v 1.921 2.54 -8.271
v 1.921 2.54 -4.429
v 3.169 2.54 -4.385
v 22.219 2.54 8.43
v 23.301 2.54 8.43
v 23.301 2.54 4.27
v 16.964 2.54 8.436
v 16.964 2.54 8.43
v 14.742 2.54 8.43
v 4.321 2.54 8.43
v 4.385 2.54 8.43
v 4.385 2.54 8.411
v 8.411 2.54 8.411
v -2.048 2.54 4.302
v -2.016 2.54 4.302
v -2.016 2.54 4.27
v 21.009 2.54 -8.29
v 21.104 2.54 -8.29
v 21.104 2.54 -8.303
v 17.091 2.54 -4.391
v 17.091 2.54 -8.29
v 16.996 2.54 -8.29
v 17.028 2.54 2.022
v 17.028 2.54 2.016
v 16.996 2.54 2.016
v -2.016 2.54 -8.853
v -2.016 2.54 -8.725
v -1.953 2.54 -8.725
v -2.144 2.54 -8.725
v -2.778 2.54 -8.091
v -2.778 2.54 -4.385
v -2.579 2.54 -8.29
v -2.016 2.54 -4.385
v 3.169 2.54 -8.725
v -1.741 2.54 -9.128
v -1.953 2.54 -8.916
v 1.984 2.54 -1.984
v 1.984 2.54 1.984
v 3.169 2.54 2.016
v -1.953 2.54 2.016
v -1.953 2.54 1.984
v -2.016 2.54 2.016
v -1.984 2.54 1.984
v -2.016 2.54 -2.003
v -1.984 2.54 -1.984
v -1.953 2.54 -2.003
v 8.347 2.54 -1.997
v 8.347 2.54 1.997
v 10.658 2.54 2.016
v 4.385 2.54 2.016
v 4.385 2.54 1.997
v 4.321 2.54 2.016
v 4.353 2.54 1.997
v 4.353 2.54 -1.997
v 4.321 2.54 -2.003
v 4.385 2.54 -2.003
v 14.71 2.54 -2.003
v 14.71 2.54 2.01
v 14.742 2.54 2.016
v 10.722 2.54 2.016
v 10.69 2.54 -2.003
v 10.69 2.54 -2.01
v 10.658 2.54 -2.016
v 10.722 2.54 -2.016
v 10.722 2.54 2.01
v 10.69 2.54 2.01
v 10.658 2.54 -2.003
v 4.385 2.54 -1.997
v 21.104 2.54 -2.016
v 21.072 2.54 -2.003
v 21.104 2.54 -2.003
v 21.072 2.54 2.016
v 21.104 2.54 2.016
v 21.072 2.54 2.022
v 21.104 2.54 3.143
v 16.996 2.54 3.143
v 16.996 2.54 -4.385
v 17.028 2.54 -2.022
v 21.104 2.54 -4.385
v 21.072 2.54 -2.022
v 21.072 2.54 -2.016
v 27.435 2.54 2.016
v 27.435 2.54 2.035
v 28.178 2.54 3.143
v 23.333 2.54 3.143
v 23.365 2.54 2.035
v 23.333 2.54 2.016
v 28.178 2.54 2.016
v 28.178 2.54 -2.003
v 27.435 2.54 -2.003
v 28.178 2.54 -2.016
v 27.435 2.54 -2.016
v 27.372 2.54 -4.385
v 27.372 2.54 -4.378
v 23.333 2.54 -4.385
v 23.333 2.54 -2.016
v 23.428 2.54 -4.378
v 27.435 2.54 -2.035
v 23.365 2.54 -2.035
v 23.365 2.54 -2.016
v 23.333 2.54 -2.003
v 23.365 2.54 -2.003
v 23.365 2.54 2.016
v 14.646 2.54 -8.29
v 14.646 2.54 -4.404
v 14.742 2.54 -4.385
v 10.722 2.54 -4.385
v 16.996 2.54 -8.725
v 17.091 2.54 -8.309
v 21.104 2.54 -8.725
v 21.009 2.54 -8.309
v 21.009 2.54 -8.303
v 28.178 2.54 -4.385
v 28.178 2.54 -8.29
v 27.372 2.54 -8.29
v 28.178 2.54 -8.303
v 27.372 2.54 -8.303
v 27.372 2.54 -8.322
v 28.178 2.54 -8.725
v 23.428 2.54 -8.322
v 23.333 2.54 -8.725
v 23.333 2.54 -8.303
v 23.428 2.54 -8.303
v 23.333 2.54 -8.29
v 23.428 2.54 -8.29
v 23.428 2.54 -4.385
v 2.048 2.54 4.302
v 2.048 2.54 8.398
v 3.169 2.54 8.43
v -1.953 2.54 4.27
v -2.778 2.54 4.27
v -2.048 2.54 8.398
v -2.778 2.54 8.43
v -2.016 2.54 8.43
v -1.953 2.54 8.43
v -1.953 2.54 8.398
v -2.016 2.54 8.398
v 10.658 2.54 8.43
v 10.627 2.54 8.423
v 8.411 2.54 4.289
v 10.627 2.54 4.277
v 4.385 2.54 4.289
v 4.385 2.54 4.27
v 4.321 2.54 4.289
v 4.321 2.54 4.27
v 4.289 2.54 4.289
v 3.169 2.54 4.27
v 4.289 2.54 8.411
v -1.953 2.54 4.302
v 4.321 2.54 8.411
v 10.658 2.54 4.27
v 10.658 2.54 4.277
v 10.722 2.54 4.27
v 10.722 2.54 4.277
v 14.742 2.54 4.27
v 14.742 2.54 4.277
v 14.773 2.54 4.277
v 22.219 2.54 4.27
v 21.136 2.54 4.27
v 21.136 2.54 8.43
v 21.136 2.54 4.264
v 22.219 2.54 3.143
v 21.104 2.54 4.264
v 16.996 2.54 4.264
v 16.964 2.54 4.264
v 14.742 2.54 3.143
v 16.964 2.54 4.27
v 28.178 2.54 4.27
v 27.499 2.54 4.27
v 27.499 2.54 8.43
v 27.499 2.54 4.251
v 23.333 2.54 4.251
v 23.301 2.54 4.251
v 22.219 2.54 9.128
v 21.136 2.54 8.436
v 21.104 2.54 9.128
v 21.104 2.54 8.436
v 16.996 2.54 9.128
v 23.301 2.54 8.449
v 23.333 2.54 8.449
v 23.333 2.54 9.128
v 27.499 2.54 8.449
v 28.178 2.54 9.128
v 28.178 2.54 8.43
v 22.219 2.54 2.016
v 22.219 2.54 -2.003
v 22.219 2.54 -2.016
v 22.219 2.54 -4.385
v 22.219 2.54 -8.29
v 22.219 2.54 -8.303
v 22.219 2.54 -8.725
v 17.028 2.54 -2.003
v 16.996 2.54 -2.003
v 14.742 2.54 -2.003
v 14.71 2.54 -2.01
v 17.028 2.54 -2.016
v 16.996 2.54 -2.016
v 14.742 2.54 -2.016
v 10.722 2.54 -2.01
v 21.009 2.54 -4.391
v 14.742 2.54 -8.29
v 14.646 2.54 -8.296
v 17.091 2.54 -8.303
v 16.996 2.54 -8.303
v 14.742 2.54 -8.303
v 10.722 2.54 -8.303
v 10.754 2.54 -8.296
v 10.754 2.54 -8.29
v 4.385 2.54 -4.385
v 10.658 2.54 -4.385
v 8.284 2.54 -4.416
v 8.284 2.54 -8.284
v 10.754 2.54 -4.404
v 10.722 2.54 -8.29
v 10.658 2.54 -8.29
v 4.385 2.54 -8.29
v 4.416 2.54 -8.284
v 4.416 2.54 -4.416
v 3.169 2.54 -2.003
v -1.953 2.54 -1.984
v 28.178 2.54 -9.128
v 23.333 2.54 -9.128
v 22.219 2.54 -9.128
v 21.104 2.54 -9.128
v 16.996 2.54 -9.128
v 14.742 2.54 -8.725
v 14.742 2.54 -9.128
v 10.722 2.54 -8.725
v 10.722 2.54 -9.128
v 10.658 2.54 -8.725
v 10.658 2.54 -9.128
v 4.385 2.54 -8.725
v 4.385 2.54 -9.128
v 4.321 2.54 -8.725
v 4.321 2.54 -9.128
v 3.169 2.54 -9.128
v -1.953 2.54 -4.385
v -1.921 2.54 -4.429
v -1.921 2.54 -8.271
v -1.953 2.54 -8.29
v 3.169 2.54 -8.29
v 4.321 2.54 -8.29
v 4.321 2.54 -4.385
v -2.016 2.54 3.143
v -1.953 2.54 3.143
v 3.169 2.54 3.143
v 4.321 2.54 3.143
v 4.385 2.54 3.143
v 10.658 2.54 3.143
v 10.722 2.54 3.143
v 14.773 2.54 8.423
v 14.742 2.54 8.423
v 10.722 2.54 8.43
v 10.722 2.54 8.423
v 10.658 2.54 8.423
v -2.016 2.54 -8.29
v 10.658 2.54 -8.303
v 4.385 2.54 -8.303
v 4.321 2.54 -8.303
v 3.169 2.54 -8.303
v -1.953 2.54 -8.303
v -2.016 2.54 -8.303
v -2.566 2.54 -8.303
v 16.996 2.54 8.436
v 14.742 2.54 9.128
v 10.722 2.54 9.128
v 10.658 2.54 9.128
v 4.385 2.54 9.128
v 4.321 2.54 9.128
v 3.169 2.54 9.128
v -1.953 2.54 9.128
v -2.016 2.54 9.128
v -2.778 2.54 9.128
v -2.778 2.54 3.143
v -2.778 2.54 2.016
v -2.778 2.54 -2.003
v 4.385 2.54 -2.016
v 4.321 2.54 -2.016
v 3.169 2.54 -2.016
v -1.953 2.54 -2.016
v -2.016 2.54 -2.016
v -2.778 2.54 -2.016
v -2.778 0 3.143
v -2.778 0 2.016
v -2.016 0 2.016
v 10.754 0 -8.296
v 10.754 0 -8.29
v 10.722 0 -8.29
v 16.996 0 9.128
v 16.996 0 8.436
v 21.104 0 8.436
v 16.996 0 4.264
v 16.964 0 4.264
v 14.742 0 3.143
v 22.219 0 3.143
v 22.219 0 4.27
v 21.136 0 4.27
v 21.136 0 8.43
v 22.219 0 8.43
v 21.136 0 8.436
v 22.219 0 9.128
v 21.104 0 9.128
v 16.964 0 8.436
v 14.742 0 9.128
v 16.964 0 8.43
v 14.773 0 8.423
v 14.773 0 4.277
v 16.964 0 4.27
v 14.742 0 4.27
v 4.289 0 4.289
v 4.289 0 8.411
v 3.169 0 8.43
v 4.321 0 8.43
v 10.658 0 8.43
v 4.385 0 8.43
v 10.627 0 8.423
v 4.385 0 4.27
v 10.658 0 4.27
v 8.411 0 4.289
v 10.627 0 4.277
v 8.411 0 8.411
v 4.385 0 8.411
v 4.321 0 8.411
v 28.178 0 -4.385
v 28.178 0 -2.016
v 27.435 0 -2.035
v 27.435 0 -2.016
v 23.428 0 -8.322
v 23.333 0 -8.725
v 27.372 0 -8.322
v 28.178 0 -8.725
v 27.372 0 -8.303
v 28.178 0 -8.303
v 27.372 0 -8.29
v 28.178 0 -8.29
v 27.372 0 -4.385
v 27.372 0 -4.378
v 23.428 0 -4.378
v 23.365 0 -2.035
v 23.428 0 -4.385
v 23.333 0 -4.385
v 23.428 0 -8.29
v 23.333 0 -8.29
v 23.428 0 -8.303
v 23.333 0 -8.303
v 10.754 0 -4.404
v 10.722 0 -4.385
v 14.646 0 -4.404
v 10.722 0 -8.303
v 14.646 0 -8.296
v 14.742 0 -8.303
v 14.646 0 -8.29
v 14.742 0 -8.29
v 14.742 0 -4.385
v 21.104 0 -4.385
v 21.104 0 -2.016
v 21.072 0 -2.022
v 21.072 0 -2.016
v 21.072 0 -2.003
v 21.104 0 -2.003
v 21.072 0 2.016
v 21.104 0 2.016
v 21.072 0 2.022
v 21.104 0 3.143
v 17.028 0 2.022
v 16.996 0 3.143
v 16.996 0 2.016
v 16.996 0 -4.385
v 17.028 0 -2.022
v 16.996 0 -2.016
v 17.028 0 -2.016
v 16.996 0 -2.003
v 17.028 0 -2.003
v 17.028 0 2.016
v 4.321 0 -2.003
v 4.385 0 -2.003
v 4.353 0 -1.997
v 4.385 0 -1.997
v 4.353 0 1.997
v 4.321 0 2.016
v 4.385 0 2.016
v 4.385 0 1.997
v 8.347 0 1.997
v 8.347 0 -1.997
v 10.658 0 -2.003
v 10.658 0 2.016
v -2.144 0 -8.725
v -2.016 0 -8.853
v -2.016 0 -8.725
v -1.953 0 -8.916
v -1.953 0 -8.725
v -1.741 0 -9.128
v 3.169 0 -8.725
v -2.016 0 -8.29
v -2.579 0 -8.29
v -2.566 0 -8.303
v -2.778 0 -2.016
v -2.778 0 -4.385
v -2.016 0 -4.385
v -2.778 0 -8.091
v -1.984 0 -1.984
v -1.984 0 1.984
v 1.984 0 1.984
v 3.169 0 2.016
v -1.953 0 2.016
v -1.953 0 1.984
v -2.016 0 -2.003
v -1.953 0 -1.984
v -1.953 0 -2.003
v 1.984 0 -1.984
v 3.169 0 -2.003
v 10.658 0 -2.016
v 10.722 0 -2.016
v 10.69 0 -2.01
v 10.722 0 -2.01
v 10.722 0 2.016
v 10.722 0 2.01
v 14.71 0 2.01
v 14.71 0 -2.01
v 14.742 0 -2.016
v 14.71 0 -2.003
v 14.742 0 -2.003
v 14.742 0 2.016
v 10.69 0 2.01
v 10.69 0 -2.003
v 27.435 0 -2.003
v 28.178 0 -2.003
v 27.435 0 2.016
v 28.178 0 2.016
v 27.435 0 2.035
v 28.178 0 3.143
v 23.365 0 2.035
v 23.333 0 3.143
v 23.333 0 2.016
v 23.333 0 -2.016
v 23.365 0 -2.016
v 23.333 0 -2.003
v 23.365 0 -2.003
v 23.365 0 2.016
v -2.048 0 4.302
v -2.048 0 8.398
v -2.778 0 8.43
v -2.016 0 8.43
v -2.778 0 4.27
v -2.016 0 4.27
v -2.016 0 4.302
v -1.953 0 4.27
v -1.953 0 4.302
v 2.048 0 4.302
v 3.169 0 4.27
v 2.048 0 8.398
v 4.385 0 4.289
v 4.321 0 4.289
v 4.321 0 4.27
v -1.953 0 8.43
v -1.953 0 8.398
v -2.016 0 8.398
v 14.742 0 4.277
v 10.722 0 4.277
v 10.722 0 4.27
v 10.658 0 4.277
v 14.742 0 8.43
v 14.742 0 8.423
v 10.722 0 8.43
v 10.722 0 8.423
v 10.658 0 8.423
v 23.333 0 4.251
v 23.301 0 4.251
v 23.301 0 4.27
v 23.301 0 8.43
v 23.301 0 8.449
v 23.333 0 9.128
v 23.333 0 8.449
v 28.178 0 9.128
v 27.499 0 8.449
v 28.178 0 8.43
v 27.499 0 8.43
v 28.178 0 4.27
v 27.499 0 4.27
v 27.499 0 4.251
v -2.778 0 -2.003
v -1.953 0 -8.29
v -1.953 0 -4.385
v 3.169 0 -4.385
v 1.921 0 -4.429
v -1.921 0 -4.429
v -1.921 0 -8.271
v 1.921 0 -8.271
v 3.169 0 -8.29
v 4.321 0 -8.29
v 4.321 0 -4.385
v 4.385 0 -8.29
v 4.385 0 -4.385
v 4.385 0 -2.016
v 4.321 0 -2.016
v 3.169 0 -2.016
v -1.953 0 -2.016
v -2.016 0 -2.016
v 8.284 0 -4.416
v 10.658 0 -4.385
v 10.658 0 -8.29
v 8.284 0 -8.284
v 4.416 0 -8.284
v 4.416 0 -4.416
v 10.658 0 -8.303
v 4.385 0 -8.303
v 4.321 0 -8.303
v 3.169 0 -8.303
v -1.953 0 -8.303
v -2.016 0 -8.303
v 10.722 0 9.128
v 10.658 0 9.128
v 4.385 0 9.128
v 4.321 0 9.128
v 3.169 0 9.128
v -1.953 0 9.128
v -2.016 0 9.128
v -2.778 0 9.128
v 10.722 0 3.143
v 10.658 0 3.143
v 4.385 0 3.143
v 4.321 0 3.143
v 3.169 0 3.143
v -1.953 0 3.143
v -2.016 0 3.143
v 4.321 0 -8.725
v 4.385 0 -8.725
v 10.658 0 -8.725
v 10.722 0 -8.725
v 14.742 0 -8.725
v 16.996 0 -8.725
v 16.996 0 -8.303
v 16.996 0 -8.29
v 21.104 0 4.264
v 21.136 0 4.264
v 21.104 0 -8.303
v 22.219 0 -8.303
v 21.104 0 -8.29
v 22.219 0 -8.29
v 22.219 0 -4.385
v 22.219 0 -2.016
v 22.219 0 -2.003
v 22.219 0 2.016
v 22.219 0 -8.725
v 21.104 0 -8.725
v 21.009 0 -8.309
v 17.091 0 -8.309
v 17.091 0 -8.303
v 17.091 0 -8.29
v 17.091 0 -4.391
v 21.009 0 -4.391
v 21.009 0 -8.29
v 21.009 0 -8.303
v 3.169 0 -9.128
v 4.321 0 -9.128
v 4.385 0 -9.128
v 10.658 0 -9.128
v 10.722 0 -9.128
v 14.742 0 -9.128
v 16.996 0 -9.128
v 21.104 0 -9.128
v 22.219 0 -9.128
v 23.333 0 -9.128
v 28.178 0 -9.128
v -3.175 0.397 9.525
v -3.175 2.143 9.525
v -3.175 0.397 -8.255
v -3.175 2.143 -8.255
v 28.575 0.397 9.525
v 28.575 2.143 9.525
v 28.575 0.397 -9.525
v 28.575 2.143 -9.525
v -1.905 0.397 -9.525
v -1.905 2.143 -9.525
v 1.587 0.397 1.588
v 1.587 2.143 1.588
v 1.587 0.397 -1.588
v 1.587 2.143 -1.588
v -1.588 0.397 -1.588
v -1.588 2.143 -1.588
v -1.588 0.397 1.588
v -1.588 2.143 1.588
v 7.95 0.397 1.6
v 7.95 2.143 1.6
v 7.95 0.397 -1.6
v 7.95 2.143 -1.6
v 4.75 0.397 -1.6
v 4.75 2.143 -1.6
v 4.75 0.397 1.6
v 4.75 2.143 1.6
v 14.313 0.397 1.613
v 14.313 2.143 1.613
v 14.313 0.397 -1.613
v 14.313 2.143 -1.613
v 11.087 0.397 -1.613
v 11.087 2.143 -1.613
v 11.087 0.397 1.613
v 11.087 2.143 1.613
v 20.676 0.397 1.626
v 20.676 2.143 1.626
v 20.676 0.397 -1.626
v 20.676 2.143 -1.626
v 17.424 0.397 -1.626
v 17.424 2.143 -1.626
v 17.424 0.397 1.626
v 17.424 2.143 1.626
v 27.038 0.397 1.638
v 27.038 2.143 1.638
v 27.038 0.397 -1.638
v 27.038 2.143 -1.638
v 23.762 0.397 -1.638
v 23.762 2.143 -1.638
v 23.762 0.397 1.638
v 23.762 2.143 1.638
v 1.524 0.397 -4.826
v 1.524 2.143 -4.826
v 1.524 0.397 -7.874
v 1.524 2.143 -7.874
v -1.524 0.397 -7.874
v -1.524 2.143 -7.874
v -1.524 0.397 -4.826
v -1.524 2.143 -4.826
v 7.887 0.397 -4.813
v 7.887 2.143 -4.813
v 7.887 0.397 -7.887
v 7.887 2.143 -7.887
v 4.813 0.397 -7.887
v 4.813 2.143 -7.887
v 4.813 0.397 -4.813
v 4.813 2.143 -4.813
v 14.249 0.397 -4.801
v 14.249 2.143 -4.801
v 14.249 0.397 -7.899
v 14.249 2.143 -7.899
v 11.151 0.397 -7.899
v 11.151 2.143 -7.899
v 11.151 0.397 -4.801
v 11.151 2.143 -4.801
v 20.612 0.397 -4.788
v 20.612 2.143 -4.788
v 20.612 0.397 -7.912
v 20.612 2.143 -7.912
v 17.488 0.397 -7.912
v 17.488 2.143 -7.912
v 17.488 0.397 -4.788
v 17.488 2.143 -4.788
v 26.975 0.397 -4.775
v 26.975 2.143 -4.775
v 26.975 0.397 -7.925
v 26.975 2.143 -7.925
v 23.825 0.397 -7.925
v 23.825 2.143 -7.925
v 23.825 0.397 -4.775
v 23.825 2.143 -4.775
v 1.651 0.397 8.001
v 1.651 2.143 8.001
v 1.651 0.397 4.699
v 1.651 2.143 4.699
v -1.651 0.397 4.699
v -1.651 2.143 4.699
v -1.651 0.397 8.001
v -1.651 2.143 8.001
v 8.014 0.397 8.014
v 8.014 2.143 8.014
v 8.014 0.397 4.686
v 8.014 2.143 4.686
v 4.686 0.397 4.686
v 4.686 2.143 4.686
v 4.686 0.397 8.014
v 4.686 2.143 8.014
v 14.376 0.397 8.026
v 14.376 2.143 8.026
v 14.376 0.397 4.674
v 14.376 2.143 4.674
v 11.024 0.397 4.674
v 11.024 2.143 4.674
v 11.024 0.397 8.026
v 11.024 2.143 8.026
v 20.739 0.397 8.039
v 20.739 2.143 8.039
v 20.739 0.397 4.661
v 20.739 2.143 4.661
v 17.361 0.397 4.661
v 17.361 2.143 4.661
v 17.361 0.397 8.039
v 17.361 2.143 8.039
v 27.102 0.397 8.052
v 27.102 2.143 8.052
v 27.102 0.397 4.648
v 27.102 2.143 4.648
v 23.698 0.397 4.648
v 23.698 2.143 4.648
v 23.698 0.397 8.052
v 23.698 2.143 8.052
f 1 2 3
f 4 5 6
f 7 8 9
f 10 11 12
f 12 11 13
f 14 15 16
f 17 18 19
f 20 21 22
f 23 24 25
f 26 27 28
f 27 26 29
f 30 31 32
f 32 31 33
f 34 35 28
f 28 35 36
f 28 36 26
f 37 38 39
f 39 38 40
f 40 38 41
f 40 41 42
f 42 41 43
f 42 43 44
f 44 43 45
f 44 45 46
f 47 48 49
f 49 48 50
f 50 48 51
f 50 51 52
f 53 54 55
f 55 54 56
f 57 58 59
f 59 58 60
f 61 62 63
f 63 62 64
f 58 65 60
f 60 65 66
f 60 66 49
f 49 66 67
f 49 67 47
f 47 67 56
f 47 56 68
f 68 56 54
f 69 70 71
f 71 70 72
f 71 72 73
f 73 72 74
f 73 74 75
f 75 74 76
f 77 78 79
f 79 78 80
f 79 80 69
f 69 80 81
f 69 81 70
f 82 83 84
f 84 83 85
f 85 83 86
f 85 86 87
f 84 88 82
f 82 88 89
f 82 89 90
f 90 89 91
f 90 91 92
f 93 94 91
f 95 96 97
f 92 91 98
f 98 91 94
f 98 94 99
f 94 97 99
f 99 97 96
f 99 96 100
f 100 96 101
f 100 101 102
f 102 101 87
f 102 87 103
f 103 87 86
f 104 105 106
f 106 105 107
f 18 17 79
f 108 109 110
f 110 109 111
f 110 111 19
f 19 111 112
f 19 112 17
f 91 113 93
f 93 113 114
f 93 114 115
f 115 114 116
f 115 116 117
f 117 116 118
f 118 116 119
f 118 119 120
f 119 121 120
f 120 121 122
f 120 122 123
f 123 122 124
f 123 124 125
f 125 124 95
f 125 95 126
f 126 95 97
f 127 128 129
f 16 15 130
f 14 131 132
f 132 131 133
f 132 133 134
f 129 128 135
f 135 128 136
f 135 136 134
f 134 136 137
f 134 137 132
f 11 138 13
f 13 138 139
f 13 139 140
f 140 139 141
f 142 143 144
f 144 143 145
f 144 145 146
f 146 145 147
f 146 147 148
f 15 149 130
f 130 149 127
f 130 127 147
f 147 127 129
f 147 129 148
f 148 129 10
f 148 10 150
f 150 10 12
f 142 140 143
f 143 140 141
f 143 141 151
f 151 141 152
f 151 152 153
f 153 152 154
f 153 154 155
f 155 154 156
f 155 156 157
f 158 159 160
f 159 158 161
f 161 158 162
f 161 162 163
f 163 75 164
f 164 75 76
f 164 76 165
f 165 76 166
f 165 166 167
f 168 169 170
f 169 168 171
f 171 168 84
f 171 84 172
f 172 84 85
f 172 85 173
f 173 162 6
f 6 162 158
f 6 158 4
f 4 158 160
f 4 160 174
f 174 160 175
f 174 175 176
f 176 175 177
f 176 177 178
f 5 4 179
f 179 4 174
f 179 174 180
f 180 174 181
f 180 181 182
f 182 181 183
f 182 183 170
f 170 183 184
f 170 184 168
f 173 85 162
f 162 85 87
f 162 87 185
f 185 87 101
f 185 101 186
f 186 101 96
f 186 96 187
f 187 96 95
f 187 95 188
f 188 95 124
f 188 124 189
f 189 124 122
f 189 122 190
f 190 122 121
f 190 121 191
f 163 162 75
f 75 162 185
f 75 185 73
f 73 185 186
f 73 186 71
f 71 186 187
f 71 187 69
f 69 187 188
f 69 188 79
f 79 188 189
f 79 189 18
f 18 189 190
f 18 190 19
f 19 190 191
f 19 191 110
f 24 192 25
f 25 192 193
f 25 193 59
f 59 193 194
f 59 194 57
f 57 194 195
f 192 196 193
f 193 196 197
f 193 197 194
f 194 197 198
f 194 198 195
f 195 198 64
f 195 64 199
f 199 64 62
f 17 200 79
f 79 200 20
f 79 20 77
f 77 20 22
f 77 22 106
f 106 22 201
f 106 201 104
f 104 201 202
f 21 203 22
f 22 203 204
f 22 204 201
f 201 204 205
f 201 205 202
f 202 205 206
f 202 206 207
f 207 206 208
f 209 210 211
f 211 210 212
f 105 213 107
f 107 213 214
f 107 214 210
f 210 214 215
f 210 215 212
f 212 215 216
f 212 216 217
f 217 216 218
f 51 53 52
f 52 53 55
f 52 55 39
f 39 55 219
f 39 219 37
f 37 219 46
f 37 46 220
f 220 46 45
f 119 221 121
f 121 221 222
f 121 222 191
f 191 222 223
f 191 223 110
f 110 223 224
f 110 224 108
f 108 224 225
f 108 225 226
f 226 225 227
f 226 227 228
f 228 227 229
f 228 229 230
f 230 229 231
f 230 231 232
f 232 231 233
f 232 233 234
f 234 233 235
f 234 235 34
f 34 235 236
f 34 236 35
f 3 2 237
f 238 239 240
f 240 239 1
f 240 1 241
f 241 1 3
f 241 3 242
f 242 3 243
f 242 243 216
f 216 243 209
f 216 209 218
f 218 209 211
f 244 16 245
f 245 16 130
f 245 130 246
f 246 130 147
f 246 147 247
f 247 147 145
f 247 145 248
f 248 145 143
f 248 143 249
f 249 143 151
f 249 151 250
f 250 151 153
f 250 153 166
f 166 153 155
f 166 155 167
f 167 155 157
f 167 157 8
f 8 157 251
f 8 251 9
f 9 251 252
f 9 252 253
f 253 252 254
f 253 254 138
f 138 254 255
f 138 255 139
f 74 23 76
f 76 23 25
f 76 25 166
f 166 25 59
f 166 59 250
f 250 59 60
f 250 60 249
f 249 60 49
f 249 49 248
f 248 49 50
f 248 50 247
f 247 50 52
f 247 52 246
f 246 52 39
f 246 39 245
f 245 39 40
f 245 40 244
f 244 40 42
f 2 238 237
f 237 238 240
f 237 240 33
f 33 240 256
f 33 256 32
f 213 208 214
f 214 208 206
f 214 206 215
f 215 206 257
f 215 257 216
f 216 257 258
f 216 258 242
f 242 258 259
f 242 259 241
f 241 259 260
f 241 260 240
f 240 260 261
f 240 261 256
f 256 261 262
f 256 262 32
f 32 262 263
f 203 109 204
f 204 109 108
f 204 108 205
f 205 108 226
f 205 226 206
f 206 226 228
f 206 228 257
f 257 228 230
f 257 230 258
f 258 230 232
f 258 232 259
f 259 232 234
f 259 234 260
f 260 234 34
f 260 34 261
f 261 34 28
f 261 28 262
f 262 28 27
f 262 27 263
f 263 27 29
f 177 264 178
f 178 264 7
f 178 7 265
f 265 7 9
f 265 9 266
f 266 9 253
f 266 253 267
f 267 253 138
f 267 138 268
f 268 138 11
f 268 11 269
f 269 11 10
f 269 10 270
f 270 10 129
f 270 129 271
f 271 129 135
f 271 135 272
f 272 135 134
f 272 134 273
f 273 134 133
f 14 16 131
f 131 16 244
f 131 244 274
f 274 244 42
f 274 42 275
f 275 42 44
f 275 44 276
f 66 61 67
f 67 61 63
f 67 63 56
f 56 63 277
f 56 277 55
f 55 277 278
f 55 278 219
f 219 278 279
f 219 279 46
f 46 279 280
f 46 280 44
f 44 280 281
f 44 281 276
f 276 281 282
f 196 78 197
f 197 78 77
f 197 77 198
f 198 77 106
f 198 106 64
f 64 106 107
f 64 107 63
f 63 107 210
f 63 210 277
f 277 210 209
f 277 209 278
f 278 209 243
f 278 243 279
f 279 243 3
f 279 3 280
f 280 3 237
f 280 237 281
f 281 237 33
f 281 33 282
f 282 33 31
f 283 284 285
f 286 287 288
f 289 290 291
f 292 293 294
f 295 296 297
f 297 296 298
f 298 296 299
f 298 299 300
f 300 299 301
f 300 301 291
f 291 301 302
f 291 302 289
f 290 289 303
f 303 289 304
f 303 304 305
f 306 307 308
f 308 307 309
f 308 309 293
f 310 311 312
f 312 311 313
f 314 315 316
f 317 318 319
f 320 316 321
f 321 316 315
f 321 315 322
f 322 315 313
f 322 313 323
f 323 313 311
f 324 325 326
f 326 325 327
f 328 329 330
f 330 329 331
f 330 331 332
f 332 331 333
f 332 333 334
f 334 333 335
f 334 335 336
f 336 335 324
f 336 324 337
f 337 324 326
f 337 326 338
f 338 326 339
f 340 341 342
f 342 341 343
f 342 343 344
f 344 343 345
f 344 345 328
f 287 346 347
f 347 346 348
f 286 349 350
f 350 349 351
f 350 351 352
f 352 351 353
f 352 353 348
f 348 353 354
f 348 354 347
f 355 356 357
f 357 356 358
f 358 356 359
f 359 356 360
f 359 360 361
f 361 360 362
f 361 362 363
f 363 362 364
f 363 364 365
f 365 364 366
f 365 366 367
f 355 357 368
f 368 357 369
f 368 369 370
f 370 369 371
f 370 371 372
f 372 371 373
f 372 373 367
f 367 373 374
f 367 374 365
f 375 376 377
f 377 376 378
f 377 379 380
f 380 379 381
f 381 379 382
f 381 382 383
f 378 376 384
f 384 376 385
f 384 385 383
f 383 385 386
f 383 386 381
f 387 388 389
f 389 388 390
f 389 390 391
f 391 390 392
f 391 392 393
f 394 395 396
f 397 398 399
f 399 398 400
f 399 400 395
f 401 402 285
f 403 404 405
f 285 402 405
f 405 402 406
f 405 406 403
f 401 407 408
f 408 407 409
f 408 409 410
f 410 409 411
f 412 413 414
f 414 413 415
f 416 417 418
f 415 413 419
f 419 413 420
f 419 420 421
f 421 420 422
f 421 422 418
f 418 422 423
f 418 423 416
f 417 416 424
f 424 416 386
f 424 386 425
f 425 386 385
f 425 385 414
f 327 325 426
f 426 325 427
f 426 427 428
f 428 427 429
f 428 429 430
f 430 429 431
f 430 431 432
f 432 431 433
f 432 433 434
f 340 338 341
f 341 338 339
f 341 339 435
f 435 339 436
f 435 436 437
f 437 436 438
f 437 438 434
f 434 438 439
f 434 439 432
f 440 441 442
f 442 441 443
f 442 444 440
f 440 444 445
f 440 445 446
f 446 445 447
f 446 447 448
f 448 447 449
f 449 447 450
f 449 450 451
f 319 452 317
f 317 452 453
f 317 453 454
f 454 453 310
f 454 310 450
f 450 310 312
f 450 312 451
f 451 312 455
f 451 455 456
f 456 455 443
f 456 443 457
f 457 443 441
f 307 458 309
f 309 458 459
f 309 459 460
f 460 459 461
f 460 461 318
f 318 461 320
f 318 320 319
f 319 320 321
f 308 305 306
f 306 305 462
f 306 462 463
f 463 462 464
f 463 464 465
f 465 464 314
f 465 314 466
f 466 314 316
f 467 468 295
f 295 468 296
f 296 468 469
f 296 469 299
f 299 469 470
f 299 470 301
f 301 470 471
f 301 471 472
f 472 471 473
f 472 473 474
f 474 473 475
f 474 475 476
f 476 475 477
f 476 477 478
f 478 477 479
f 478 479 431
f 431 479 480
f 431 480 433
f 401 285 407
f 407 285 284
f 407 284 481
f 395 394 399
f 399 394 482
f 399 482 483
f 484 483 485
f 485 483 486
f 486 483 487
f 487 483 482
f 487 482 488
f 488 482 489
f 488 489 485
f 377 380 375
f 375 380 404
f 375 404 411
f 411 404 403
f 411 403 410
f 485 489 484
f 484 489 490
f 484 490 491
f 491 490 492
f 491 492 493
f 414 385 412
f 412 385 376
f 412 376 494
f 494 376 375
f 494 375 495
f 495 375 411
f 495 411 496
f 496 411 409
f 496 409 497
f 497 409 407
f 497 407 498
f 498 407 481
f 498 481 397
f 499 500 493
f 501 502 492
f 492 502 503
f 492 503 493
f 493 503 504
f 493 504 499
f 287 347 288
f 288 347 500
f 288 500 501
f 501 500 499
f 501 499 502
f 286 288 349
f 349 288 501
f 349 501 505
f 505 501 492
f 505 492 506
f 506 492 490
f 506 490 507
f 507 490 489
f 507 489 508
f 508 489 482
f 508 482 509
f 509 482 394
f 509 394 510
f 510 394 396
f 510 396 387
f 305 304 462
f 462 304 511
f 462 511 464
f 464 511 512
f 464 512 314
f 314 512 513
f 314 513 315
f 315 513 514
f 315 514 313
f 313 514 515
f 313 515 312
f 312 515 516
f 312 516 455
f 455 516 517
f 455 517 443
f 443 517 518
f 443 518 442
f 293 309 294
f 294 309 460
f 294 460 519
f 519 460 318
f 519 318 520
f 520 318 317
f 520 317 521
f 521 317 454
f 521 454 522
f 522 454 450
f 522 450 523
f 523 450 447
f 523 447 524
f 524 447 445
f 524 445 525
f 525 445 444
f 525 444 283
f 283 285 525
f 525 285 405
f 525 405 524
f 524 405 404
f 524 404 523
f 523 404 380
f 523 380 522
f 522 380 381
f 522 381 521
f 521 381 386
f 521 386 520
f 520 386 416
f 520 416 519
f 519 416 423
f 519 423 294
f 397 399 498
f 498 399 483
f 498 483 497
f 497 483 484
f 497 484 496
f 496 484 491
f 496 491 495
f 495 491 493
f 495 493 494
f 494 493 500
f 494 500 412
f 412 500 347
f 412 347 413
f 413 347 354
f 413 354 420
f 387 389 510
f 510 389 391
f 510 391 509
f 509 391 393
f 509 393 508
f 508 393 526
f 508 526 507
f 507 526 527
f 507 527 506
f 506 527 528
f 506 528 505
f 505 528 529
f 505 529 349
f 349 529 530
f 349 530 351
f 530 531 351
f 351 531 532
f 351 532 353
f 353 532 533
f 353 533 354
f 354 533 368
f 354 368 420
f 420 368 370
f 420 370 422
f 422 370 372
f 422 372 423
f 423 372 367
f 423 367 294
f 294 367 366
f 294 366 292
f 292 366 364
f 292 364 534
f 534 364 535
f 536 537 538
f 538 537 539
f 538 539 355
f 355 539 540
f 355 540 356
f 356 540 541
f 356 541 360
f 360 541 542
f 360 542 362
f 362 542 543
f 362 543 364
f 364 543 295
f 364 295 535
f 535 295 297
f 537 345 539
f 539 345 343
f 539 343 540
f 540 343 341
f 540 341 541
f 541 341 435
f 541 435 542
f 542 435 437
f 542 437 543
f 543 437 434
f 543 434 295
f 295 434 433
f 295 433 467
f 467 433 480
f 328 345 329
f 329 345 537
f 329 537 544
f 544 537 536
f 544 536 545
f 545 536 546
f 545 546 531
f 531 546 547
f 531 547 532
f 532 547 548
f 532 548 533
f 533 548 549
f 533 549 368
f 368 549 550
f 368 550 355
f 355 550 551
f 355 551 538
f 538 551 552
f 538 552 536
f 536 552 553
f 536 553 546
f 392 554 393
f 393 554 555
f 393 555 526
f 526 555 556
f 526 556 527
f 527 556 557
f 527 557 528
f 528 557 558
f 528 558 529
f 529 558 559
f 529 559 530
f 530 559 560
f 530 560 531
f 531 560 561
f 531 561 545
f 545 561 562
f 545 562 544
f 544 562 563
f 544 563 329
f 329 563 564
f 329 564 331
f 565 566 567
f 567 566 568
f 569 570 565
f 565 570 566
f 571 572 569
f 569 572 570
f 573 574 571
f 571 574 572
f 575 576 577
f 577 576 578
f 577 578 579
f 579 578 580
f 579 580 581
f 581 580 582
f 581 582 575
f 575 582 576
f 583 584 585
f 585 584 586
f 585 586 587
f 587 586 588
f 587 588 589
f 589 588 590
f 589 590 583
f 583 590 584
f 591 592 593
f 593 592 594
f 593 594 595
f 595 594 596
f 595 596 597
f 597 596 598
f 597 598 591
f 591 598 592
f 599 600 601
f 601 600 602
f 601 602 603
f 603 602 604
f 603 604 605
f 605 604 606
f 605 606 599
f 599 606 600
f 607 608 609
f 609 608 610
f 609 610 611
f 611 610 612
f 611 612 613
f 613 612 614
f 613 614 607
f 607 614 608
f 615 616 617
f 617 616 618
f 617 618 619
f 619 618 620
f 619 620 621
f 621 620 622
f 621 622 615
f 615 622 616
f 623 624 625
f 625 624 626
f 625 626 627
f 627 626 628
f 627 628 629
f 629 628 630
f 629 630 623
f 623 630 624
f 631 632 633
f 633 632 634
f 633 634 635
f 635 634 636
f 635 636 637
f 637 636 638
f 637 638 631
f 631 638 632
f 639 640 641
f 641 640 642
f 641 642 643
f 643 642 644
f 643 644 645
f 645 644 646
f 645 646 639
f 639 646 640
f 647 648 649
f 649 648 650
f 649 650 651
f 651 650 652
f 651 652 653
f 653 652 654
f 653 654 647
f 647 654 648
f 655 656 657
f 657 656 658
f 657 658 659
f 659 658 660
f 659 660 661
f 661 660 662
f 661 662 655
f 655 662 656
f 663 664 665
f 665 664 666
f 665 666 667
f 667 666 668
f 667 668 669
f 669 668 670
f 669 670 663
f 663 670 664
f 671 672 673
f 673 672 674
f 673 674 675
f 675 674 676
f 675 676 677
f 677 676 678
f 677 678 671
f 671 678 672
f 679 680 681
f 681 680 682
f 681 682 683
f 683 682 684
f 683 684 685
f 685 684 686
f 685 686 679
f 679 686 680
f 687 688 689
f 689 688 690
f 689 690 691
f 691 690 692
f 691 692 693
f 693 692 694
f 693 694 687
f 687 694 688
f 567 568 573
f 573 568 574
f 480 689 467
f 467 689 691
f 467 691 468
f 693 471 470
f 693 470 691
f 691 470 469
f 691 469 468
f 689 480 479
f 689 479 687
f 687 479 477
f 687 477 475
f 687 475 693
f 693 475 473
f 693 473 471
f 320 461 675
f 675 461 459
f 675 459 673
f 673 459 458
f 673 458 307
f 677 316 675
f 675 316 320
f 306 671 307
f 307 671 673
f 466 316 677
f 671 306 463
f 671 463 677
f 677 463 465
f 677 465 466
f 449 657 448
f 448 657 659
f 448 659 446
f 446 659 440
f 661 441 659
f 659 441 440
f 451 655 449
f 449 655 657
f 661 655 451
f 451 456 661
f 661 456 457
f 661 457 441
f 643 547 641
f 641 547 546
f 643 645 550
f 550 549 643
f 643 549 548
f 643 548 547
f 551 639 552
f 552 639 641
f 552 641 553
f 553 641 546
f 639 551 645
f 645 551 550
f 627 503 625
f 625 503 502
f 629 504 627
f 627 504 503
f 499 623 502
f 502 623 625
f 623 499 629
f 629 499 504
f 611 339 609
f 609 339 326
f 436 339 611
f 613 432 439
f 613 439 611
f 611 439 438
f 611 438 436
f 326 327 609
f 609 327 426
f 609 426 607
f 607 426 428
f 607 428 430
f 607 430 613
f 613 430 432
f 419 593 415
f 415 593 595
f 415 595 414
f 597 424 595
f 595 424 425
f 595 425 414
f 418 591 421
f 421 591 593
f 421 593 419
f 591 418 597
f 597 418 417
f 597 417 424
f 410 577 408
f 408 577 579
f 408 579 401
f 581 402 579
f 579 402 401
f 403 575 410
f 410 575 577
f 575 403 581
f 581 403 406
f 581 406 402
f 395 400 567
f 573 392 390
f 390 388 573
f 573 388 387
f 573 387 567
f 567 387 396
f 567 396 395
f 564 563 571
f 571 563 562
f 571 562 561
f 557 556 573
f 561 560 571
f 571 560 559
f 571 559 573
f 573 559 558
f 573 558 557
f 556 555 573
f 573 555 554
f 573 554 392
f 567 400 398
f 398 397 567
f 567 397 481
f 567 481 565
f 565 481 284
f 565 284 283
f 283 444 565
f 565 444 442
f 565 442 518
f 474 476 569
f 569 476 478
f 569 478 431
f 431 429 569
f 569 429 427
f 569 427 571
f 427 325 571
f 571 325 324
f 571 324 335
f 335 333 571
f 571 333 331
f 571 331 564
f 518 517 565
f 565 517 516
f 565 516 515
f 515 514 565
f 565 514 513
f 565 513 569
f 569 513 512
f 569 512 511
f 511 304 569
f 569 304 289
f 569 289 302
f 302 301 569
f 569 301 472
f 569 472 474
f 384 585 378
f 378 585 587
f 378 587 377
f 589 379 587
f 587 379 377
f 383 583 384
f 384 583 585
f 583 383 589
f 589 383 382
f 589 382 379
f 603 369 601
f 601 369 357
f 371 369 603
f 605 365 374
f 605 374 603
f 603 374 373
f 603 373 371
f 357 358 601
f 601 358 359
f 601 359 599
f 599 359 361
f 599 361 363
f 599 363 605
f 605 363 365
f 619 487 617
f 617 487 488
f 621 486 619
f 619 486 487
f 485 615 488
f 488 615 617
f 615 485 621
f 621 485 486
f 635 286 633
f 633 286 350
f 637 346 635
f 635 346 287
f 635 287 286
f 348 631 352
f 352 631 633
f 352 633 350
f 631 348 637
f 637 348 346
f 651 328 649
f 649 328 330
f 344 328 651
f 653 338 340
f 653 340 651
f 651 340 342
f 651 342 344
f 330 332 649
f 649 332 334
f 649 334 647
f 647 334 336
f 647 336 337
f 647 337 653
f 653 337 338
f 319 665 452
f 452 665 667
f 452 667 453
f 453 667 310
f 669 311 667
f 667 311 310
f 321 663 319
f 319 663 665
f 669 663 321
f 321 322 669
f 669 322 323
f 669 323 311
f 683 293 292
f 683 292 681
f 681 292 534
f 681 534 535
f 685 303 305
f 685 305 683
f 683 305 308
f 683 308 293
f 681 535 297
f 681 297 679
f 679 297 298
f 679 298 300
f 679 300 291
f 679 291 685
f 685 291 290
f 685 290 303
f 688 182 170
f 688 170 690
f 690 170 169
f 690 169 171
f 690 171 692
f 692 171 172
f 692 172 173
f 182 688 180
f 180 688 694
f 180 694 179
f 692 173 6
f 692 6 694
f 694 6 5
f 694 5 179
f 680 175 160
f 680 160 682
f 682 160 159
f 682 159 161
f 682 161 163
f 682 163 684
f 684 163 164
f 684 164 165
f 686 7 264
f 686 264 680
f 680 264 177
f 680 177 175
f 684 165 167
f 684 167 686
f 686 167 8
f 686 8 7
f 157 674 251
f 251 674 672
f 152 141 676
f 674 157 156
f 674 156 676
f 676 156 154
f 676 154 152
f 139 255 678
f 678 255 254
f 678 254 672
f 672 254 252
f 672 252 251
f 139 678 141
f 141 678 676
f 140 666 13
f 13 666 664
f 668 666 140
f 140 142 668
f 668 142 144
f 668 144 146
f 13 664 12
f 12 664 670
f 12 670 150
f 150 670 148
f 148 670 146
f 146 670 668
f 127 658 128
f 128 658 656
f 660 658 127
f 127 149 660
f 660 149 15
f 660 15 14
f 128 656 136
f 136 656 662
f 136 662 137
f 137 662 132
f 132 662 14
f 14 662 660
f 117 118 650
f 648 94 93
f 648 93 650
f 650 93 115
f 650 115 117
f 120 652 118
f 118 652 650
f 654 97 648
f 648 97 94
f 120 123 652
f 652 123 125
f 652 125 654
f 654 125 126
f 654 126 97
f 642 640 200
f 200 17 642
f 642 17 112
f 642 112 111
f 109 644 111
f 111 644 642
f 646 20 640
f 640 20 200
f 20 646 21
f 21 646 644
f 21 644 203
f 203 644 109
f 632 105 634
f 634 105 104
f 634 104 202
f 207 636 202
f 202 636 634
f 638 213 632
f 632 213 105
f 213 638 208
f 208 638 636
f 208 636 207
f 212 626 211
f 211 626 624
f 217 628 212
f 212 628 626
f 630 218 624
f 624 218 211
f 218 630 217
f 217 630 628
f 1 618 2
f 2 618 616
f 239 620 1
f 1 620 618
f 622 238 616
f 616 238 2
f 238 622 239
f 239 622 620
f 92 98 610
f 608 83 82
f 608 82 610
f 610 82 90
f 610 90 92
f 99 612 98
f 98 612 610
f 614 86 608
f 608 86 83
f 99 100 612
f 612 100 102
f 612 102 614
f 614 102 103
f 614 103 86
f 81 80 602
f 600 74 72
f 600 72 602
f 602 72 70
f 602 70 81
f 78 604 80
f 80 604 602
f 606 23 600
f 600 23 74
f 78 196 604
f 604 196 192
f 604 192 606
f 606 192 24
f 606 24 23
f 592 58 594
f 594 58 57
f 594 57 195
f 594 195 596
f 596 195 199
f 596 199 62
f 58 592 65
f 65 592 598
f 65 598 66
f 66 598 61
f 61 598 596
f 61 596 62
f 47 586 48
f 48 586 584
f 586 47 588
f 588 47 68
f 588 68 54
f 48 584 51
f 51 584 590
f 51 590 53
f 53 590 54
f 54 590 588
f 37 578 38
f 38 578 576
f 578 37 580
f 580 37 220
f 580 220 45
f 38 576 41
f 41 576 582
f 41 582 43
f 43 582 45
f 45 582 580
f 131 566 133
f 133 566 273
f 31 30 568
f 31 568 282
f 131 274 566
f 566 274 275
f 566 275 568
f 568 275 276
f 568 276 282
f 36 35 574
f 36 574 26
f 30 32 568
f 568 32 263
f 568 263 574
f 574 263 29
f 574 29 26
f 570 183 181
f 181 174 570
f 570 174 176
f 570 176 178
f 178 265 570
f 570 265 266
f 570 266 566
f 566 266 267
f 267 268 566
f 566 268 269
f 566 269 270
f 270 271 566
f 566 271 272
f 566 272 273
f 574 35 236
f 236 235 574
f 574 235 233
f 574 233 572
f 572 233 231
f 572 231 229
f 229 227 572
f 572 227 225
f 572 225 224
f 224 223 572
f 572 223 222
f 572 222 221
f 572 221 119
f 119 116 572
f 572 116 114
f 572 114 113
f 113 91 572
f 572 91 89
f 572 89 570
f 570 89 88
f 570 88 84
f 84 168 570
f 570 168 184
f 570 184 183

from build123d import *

# Parameters (mm, degrees)
SKETCH1_W           = 31.75
SKETCH1_H           = 19.05
SKETCH1_W_2         = 3.175
SKETCH1_H_2         = 3.175
SKETCH1_W_3         = 3.2004
SKETCH1_H_3         = 3.2004
SKETCH1_W_4         = 3.2258
SKETCH1_H_4         = 3.2258
SKETCH1_W_5         = 3.2512
SKETCH1_H_5         = 3.2512
SKETCH1_W_6         = 3.2766
SKETCH1_H_6         = 3.2766
SKETCH1_W_7         = 3.048
SKETCH1_H_7         = 3.048
SKETCH1_W_8         = 3.0734
SKETCH1_H_8         = 3.0734
SKETCH1_W_9         = 3.0988
SKETCH1_H_9         = 3.0988
SKETCH1_W_10        = 3.1242
SKETCH1_H_10        = 3.1242
SKETCH1_W_11        = 3.1496
SKETCH1_H_11        = 3.1496
SKETCH1_W_12        = 3.302
SKETCH1_H_12        = 3.302
SKETCH1_W_13        = 3.3274
SKETCH1_H_13        = 3.3274
SKETCH1_W_14        = 3.3528
SKETCH1_H_14        = 3.3528
SKETCH1_W_15        = 3.3782
SKETCH1_H_15        = 3.3782
SKETCH1_W_16        = 3.4036
SKETCH1_H_16        = 3.4036
BOSS_EXTRUDE1_DEPTH = 2.54
CHAMFER1_SIZE       = 1.27
CHAMFER2_SIZE       = 0.396875


with BuildPart() as part:
    # Sketch1 → Boss-Extrude1 (new body)
    with BuildSketch(Plane(origin=(0, 0, 0), x_dir=(1, 0, 0), z_dir=(0, 1, 0))):
        with Locations((12.7, 0)):
            Rectangle(SKETCH1_W, SKETCH1_H)
        Rectangle(SKETCH1_W_2, SKETCH1_H_2, mode=Mode.SUBTRACT)
        with Locations((6.35, 0)):
            Rectangle(SKETCH1_W_3, SKETCH1_H_3, mode=Mode.SUBTRACT)
        with Locations((12.7, 0)):
            Rectangle(SKETCH1_W_4, SKETCH1_H_4, mode=Mode.SUBTRACT)
        with Locations((19.05, 0)):
            Rectangle(SKETCH1_W_5, SKETCH1_H_5, mode=Mode.SUBTRACT)
        with Locations((25.4, 0)):
            Rectangle(SKETCH1_W_6, SKETCH1_H_6, mode=Mode.SUBTRACT)
        with Locations((0, 6.35)):
            Rectangle(SKETCH1_W_7, SKETCH1_H_7, mode=Mode.SUBTRACT)
        with Locations((6.35, 6.35)):
            Rectangle(SKETCH1_W_8, SKETCH1_H_8, mode=Mode.SUBTRACT)
        with Locations((12.7, 6.35)):
            Rectangle(SKETCH1_W_9, SKETCH1_H_9, mode=Mode.SUBTRACT)
        with Locations((19.05, 6.35)):
            Rectangle(SKETCH1_W_10, SKETCH1_H_10, mode=Mode.SUBTRACT)
        with Locations((25.4, 6.35)):
            Rectangle(SKETCH1_W_11, SKETCH1_H_11, mode=Mode.SUBTRACT)
        with Locations((0, -6.35)):
            Rectangle(SKETCH1_W_12, SKETCH1_H_12, mode=Mode.SUBTRACT)
        with Locations((6.35, -6.35)):
            Rectangle(SKETCH1_W_13, SKETCH1_H_13, mode=Mode.SUBTRACT)
        with Locations((12.7, -6.35)):
            Rectangle(SKETCH1_W_14, SKETCH1_H_14, mode=Mode.SUBTRACT)
        with Locations((19.05, -6.35)):
            Rectangle(SKETCH1_W_15, SKETCH1_H_15, mode=Mode.SUBTRACT)
        with Locations((25.4, -6.35)):
            Rectangle(SKETCH1_W_16, SKETCH1_H_16, mode=Mode.SUBTRACT)
    extrude(amount=BOSS_EXTRUDE1_DEPTH)

    # Chamfer1
    chamfer1_edges = [part.edges().sort_by_distance(p)[0] for p in [
        (-3.175, 1.27, -9.525),
    ]]
    chamfer(chamfer1_edges, length=CHAMFER1_SIZE)

    # Chamfer2
    chamfer2_edges = [part.edges().sort_by_distance(p)[0] for p in [
        (14.2494, 0, -6.35),
        (12.7, 0, -7.8994),
        (11.1506, 0, -6.35),
        (12.7, 0, -4.8006),
        (14.2494, 2.54, -6.35),
        (12.7, 2.54, -7.8994),
        (11.1506, 2.54, -6.35),
        (12.7, 2.54, -4.8006),
        (20.6121, 0, -6.35),
        (19.05, 0, -7.9121),
        (17.4879, 0, -6.35),
        (19.05, 0, -4.7879),
        (20.6121, 2.54, -6.35),
        (19.05, 2.54, -7.9121),
        (17.4879, 2.54, -6.35),
        (19.05, 2.54, -4.7879),
        (28.575, 2.54, 0),
        (26.9748, 0, -6.35),
        (25.4, 0, -7.9248),
        (23.8252, 0, -6.35),
        (25.4, 0, -4.7752),
        (26.9748, 2.54, -6.35),
        (25.4, 2.54, -7.9248),
        (23.8252, 2.54, -6.35),
        (25.4, 2.54, -4.7752),
        (1.651, 0, 6.35),
        (0, 0, 4.699),
        (-1.651, 0, 6.35),
        (0, 0, 8.001),
        (1.651, 2.54, 6.35),
        (0, 2.54, 4.699),
        (-1.651, 2.54, 6.35),
        (0, 2.54, 8.001),
        (1.5875, 0, 0),
        (0, 0, -1.5875),
        (8.0137, 0, 6.35),
        (6.35, 0, 4.6863),
        (4.6863, 0, 6.35),
        (6.35, 0, 8.0137),
        (8.0137, 2.54, 6.35),
        (6.35, 2.54, 4.6863),
        (4.6863, 2.54, 6.35),
        (6.35, 2.54, 8.0137),
        (-1.5875, 0, 0),
        (0, 0, 1.5875),
        (1.5875, 2.54, 0),
        (13.335, 2.54, -9.525),
        (14.3764, 0, 6.35),
        (12.7, 0, 4.6736),
        (0, 2.54, -1.5875),
        (11.0236, 0, 6.35),
        (12.7, 0, 8.0264),
        (14.3764, 2.54, 6.35),
        (12.7, 2.54, 4.6736),
        (11.0236, 2.54, 6.35),
        (12.7, 2.54, 8.0264),
        (-1.5875, 2.54, 0),
        (0, 2.54, 1.5875),
        (20.7391, 0, 6.35),
        (19.05, 0, 4.6609),
        (17.3609, 0, 6.35),
        (19.05, 0, 8.0391),
        (20.7391, 2.54, 6.35),
        (19.05, 2.54, 4.6609),
        (17.3609, 2.54, 6.35),
        (19.05, 2.54, 8.0391),
        (27.1018, 0, 6.35),
        (25.4, 0, 4.6482),
        (23.6982, 0, 6.35),
        (25.4, 0, 8.0518),
        (27.1018, 2.54, 6.35),
        (25.4, 2.54, 4.6482),
        (23.6982, 2.54, 6.35),
        (25.4, 2.54, 8.0518),
        (-3.175, 0, 0.635),
        (-3.175, 2.54, 0.635),
        (-2.54, 0, -8.89),
        (-2.54, 2.54, -8.89),
        (7.9502, 0, 0),
        (6.35, 0, -1.6002),
        (4.7498, 0, 0),
        (6.35, 0, 1.6002),
        (7.9502, 2.54, 0),
        (6.35, 2.54, -1.6002),
        (4.7498, 2.54, 0),
        (6.35, 2.54, 1.6002),
        (14.3129, 0, 0),
        (12.7, 0, -1.6129),
        (11.0871, 0, 0),
        (12.7, 0, 1.6129),
        (14.3129, 2.54, 0),
        (12.7, 2.54, -1.6129),
        (11.0871, 2.54, 0),
        (12.7, 2.54, 1.6129),
        (13.335, 0, -9.525),
        (28.575, 0, 0),
        (20.6756, 0, 0),
        (19.05, 0, -1.6256),
        (17.4244, 0, 0),
        (19.05, 0, 1.6256),
        (20.6756, 2.54, 0),
        (19.05, 2.54, -1.6256),
        (17.4244, 2.54, 0),
        (19.05, 2.54, 1.6256),
        (12.7, 0, 9.525),
        (27.0383, 0, 0),
        (25.4, 0, -1.6383),
        (23.7617, 0, 0),
        (25.4, 0, 1.6383),
        (27.0383, 2.54, 0),
        (25.4, 2.54, -1.6383),
        (23.7617, 2.54, 0),
        (25.4, 2.54, 1.6383),
        (1.524, 0, -6.35),
        (0, 0, -7.874),
        (-1.524, 0, -6.35),
        (0, 0, -4.826),
        (1.524, 2.54, -6.35),
        (0, 2.54, -7.874),
        (-1.524, 2.54, -6.35),
        (0, 2.54, -4.826),
        (12.7, 2.54, 9.525),
        (7.8867, 0, -6.35),
        (6.35, 0, -7.8867),
        (4.8133, 0, -6.35),
        (6.35, 0, -4.8133),
        (7.8867, 2.54, -6.35),
        (6.35, 2.54, -7.8867),
        (4.8133, 2.54, -6.35),
        (6.35, 2.54, -4.8133),
    ]]
    chamfer(chamfer2_edges, length=CHAMFER2_SIZE)


solid = part.part
